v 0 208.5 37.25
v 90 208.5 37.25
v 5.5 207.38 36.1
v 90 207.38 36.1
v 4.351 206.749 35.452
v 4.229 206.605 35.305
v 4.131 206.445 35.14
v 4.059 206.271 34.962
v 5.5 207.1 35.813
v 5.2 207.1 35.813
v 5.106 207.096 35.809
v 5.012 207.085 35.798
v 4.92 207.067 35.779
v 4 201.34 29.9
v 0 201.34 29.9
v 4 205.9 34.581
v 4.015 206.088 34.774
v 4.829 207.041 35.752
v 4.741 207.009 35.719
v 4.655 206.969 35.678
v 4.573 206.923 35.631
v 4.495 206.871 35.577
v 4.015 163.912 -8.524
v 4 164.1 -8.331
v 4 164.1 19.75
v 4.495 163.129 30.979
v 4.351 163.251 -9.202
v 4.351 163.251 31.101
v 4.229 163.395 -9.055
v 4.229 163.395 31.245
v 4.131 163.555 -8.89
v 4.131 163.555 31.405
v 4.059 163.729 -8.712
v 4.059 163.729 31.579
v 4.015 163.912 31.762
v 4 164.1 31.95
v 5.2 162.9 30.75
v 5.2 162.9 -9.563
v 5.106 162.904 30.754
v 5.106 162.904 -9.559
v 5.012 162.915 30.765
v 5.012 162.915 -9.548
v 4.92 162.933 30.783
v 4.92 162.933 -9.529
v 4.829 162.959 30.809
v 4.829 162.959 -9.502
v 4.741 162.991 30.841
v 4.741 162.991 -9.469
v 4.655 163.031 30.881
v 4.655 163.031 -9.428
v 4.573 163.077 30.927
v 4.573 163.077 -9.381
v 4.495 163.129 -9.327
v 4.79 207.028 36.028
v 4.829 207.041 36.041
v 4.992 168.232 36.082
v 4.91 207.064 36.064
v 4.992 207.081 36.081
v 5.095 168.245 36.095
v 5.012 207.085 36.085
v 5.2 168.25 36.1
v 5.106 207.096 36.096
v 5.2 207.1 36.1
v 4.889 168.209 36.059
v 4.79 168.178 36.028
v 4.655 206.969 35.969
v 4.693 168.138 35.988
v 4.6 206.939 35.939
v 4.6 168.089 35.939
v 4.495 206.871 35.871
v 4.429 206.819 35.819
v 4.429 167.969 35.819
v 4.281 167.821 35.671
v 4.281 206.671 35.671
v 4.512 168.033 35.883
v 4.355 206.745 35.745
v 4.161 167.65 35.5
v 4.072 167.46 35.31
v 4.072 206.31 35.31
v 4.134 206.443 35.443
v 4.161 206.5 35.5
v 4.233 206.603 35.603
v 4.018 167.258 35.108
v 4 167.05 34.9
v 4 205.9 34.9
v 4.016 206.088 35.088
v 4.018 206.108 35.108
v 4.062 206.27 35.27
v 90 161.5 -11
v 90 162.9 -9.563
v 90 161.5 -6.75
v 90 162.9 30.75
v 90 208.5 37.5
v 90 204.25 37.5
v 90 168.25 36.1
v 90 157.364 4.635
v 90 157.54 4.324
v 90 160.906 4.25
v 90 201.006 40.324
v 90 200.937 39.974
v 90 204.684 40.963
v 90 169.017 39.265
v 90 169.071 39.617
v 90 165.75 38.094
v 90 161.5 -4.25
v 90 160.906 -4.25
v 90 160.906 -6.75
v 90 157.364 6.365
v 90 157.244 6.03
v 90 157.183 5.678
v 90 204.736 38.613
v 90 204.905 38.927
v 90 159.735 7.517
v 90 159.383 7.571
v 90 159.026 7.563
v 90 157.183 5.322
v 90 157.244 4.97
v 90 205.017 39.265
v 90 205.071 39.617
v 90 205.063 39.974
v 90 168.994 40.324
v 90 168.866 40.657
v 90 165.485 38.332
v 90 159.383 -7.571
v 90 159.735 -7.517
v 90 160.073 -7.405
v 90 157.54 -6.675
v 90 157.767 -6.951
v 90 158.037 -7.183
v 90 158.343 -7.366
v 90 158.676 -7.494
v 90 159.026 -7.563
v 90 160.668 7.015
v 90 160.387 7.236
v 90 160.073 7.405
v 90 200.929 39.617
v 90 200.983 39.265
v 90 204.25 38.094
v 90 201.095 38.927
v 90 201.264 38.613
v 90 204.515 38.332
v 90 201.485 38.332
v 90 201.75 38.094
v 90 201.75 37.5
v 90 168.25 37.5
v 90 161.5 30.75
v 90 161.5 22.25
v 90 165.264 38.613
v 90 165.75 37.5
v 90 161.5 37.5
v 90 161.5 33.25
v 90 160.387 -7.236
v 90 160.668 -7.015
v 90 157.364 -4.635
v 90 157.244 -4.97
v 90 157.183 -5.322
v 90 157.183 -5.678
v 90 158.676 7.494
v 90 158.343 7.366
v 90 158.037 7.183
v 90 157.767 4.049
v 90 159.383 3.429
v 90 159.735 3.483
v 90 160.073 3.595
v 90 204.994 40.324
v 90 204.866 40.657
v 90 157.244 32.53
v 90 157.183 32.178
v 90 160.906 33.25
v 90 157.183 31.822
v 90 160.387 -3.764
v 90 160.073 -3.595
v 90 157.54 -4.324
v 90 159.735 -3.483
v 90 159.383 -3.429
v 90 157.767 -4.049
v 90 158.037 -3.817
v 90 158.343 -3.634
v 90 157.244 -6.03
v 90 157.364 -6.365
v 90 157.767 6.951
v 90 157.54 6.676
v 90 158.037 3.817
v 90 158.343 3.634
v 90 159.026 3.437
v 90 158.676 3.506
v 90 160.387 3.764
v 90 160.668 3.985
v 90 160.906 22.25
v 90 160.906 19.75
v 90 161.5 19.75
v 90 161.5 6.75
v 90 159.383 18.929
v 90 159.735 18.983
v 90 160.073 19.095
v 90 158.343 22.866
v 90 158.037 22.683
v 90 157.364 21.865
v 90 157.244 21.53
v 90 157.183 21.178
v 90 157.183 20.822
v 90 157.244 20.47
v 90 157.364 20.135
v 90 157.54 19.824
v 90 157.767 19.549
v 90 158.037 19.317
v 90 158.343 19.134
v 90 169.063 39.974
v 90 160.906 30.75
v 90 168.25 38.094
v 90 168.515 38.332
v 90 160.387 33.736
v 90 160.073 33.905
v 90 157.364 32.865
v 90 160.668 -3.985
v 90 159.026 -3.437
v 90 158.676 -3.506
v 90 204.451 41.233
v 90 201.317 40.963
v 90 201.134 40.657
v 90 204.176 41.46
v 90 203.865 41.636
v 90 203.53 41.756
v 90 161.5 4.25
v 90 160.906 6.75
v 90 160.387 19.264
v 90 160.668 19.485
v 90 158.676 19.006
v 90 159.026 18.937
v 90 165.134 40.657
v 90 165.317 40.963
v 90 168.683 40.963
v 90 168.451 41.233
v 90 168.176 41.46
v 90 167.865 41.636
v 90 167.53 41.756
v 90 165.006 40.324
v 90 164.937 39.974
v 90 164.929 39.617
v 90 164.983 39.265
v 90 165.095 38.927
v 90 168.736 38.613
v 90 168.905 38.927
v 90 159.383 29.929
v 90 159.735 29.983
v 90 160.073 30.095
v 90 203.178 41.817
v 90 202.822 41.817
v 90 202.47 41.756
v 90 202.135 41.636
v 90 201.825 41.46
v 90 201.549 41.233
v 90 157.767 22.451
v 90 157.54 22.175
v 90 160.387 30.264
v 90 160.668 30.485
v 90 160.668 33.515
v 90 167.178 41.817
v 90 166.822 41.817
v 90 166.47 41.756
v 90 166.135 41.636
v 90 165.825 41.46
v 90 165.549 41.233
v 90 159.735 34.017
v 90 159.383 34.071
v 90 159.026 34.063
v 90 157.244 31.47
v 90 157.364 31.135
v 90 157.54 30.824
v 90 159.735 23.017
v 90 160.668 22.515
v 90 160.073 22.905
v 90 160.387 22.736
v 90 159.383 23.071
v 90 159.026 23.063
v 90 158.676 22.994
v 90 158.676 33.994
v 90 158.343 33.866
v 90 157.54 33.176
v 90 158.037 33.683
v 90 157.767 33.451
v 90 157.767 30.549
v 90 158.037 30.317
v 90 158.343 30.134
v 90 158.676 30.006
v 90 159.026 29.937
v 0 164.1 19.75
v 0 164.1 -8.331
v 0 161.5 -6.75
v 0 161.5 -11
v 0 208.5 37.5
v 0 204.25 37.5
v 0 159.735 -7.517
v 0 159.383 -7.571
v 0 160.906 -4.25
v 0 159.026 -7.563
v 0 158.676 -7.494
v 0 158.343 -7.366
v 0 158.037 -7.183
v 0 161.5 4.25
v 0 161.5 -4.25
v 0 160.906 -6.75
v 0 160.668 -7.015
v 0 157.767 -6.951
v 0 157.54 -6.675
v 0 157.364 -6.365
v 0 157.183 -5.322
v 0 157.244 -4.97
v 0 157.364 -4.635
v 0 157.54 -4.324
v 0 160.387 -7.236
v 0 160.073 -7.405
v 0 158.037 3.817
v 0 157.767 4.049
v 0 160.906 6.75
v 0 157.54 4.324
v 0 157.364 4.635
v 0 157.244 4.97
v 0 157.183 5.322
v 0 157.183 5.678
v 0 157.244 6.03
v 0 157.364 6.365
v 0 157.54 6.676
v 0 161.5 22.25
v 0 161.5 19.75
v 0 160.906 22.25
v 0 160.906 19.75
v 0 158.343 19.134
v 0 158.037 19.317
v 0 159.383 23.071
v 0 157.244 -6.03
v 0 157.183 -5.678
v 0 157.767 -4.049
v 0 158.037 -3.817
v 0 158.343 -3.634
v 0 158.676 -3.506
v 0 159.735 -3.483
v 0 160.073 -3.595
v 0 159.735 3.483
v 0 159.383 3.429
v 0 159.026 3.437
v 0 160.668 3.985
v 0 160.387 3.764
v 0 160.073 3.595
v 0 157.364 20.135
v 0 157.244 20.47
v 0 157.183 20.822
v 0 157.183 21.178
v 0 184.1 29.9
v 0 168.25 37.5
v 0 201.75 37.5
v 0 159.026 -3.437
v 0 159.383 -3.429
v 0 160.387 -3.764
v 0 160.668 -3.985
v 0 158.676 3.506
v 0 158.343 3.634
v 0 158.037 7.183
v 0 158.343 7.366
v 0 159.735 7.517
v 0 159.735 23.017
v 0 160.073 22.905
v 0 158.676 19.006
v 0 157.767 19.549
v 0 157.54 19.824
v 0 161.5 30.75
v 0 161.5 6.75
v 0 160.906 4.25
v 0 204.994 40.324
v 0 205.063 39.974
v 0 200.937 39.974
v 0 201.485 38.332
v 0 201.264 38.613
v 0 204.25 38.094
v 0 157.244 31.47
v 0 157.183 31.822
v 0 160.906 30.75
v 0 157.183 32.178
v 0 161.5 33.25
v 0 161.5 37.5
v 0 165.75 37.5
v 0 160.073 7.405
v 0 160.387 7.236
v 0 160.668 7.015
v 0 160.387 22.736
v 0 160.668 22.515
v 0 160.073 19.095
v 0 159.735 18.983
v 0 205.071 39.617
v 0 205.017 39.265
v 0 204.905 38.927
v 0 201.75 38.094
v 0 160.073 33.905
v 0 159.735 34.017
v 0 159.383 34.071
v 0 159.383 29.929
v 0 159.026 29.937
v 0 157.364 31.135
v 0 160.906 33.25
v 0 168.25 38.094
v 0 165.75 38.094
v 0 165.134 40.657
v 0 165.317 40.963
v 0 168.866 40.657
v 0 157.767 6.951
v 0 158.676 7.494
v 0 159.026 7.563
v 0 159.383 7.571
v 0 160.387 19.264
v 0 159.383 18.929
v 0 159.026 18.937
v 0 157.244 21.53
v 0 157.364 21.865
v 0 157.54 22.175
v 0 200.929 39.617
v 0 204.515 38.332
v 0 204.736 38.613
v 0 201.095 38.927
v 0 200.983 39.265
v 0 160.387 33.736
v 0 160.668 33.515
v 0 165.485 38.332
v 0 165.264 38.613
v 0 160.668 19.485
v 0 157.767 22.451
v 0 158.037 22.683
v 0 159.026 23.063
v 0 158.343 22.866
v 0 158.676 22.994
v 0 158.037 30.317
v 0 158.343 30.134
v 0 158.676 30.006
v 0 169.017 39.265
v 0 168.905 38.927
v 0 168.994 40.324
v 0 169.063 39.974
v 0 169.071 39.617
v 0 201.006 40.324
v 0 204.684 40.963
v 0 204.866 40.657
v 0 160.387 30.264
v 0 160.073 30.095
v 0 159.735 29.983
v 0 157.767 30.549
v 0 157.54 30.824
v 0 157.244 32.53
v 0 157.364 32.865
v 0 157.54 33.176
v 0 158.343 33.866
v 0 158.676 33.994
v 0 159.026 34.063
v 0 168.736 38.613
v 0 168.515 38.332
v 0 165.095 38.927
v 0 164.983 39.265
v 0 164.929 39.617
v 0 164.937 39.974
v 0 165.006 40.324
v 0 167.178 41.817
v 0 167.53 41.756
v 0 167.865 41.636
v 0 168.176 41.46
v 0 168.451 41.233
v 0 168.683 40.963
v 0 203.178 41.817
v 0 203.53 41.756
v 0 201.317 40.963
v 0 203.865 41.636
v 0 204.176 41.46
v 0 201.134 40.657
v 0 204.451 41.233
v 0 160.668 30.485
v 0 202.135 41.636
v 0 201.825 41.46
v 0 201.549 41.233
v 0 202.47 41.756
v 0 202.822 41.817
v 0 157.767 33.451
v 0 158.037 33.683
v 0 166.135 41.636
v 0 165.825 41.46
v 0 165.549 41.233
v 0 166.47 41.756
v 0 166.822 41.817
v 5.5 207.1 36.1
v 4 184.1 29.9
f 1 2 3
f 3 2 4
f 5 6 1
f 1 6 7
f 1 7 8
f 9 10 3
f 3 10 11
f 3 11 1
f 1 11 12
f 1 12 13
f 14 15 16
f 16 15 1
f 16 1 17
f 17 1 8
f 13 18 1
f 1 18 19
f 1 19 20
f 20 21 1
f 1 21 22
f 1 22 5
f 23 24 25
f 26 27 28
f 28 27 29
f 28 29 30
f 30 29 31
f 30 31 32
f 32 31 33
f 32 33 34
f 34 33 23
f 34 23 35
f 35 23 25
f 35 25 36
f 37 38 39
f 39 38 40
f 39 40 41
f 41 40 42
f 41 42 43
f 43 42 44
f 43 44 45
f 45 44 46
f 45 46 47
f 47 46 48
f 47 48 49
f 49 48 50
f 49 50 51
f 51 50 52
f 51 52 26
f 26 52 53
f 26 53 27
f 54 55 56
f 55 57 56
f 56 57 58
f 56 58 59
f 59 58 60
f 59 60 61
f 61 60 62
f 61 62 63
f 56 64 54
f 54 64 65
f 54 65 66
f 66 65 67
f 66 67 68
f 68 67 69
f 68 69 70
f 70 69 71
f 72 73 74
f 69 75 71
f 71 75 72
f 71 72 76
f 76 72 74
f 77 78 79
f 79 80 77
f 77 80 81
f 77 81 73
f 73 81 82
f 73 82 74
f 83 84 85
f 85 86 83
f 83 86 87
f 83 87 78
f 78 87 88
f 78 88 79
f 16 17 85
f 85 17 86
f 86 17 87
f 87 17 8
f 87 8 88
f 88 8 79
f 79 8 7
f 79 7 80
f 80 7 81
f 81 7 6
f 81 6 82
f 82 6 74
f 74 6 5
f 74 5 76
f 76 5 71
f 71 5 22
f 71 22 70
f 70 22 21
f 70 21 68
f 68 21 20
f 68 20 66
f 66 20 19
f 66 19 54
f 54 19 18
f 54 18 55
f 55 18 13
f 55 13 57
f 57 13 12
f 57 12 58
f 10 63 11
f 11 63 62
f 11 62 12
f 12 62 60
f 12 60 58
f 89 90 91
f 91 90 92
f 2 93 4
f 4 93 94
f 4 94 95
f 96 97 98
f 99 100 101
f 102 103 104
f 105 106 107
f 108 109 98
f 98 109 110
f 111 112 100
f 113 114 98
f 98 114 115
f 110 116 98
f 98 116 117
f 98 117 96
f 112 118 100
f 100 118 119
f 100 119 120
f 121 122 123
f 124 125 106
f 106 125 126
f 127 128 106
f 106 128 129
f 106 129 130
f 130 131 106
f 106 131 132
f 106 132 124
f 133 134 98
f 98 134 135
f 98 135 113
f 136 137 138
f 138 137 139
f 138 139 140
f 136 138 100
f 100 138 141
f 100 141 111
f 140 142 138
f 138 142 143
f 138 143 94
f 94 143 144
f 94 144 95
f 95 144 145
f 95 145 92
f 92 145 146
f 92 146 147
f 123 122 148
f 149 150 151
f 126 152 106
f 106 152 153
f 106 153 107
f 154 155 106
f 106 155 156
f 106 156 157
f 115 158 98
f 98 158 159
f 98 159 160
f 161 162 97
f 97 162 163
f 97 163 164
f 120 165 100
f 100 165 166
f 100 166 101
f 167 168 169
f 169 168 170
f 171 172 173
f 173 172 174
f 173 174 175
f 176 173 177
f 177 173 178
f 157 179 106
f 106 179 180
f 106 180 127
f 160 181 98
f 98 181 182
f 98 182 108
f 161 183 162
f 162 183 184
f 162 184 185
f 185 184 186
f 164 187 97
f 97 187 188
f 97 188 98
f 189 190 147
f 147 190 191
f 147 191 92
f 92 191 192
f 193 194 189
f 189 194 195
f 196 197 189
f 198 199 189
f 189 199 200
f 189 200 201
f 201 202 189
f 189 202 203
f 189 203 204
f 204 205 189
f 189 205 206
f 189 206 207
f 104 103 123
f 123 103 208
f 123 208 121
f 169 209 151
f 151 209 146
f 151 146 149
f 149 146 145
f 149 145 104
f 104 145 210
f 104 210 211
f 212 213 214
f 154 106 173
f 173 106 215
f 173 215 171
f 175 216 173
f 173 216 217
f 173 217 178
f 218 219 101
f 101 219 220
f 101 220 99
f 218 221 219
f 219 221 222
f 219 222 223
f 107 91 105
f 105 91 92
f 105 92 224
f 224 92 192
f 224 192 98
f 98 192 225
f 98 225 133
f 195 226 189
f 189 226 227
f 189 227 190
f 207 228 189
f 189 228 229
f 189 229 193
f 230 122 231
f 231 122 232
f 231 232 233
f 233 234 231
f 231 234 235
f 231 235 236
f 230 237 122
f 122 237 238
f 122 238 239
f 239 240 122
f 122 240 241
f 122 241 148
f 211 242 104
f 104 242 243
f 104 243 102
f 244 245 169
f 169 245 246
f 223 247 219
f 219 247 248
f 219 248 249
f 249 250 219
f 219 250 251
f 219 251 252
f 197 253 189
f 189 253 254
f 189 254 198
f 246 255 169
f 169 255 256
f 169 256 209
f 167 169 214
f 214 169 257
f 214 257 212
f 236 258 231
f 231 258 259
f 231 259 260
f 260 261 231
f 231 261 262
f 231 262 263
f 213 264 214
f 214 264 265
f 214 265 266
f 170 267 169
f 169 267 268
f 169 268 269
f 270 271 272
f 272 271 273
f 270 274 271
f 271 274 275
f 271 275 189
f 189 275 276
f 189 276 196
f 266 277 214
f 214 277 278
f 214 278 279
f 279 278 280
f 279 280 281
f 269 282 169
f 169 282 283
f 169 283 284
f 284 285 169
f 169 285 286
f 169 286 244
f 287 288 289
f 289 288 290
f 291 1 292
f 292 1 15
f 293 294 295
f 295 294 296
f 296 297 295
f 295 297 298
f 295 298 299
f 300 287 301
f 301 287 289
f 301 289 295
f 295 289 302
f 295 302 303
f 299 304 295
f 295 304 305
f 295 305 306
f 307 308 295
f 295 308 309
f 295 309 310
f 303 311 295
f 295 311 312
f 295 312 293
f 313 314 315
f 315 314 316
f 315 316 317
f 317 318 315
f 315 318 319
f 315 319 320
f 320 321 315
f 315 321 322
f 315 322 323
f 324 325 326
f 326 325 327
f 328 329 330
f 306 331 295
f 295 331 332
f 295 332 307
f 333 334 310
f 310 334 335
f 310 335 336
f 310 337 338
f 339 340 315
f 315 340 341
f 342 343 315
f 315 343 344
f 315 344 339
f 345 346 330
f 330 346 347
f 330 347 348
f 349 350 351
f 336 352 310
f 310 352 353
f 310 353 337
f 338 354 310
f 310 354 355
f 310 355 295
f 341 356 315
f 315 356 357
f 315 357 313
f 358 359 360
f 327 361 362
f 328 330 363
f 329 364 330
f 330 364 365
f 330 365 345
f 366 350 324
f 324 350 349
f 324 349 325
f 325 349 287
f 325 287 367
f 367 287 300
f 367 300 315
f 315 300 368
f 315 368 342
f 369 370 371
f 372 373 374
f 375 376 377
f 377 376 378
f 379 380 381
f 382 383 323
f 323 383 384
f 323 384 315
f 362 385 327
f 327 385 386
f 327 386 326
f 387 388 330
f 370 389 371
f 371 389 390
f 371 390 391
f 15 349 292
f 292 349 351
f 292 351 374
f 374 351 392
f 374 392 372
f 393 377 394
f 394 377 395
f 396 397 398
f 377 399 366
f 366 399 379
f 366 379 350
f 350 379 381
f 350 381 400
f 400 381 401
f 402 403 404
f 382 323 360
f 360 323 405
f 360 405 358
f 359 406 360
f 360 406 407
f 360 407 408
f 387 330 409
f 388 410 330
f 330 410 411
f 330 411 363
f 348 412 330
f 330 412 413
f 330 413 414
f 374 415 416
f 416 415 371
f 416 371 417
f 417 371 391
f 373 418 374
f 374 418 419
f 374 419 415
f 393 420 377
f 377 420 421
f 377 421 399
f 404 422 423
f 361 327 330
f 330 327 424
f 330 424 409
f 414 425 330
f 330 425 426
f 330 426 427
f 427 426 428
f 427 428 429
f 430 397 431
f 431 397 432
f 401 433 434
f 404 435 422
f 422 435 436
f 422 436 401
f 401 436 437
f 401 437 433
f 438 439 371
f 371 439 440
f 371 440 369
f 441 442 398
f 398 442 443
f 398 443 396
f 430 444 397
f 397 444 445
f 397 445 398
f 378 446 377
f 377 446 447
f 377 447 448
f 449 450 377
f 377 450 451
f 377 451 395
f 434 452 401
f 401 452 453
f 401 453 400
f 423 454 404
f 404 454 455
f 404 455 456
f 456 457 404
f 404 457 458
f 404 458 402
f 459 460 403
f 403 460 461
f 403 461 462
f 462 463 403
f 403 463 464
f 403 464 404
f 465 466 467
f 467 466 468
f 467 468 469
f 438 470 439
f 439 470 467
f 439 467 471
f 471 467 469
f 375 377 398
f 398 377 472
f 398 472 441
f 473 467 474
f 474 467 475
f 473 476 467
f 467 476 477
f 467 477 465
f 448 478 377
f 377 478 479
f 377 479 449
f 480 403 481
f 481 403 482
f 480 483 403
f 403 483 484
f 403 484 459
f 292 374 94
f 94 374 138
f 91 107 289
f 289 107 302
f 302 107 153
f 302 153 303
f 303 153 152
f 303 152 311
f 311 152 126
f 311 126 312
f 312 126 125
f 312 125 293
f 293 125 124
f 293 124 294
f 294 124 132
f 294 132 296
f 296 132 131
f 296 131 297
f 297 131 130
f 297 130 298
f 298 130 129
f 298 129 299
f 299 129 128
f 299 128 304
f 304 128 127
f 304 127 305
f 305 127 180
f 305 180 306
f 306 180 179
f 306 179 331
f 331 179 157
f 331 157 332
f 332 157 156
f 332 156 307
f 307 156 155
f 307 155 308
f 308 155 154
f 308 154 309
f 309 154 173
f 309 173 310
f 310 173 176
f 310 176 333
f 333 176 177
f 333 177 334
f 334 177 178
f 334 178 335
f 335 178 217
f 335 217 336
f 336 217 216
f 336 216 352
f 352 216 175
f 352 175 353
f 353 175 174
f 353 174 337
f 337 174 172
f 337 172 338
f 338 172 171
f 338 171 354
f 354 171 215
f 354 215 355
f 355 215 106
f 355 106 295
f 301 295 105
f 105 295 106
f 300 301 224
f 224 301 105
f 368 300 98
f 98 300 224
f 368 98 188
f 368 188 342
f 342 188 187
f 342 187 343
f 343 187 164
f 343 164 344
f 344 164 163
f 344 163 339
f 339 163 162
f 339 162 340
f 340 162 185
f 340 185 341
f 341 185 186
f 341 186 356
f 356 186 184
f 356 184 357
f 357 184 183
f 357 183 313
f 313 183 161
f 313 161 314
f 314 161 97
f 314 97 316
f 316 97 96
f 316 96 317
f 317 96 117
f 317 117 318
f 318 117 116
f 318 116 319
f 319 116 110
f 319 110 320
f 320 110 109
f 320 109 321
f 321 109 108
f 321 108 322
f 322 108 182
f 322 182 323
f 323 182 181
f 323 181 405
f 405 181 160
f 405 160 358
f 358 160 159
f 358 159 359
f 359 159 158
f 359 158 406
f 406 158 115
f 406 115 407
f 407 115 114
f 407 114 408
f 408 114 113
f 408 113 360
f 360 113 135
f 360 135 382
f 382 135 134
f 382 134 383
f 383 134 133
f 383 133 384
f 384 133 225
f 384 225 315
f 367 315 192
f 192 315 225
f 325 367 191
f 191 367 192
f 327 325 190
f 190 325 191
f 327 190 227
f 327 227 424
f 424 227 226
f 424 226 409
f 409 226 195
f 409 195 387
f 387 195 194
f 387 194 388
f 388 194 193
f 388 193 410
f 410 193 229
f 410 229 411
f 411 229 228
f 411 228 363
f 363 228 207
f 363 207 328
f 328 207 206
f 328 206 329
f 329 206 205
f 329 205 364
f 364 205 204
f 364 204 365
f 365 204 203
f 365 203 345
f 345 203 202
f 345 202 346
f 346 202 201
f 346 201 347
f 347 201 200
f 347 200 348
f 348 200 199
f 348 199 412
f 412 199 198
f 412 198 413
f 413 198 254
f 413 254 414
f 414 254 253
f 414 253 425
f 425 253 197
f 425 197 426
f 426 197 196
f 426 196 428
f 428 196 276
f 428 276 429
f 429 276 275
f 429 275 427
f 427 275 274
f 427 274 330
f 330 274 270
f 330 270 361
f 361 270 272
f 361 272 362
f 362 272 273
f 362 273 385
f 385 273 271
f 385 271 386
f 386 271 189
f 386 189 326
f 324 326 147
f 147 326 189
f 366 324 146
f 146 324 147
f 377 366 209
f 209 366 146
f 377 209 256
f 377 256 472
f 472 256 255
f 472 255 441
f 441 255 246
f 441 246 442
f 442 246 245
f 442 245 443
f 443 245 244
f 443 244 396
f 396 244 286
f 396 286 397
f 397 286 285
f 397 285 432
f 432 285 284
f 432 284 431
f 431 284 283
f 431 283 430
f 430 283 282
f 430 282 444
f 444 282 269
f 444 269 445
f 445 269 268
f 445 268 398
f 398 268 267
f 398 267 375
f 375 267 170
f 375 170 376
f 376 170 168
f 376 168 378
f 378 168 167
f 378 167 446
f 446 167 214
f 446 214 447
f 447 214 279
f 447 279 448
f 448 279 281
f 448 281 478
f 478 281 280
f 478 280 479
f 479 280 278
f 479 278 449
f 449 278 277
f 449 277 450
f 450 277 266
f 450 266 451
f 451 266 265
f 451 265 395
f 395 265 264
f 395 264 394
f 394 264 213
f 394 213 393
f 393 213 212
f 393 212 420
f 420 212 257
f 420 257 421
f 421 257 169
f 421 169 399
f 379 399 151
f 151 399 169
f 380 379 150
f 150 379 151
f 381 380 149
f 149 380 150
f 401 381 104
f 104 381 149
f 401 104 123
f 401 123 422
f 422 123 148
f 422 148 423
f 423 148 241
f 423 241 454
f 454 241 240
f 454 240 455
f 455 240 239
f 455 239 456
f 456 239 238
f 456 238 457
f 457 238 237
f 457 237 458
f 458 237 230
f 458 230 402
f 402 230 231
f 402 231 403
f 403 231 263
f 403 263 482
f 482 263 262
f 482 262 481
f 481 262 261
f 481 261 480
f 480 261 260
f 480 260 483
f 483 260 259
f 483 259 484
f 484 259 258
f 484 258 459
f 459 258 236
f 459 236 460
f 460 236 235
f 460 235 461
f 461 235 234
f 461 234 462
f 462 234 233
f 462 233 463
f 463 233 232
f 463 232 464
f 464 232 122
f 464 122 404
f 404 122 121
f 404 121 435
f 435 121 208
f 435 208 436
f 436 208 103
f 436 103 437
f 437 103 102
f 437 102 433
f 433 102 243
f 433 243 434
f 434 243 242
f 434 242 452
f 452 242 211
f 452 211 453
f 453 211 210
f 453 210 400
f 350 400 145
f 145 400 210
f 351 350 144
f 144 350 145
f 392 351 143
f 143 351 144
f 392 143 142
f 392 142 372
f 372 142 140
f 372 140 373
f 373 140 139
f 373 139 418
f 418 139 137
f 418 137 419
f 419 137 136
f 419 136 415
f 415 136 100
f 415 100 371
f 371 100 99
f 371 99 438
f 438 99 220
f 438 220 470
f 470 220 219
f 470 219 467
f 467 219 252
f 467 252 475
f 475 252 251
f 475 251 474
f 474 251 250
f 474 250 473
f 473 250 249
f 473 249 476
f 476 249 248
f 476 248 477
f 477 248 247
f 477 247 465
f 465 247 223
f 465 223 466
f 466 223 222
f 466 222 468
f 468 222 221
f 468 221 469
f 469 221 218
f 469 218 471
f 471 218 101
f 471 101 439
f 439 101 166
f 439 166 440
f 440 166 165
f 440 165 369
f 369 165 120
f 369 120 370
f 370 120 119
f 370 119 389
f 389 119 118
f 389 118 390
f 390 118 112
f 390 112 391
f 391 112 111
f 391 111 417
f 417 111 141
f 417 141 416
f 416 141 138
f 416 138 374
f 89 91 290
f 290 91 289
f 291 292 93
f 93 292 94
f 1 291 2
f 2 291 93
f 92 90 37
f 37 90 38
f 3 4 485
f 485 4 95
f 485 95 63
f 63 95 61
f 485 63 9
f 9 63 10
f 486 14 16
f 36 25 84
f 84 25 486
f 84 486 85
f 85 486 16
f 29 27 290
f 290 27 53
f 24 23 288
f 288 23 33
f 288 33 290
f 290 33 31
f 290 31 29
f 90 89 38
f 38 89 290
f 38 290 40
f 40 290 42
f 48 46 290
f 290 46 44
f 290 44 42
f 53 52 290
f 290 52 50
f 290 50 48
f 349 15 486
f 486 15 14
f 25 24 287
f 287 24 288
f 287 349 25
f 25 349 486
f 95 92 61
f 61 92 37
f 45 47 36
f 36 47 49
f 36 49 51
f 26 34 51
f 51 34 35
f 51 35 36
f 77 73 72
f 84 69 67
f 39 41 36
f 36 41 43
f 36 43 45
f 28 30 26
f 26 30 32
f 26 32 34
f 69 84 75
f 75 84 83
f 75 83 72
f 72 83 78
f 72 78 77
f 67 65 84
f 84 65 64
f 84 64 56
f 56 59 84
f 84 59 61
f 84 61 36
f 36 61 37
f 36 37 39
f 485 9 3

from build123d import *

# Parameters (mm, degrees)
EXTRUDE_1_DEPTH             = 90
SKETCH_2_W                  = 90
SKETCH_2_H                  = 42.75
EXTRUDE_2_DEPTH             = 8.2
SKETCH_3_W                  = 90
SKETCH_3_H                  = 52.45
EXTRUDE_3_DEPTH             = 8.2
SKETCH_4_W                  = 3.95
SKETCH_4_H                  = 2.25
CUT_EXTRUDE_1_DEPTH         = 235.487383722
SKETCH_5_W                  = 3.95
SKETCH_5_H                  = 29.5
CUT_EXTRUDE_2_DEPTH         = 235.487383722
SKETCH_6_W                  = 3.95
SKETCH_6_H                  = 6.2
CUT_EXTRUDE_3_DEPTH         = 235.487383722
SKETCH_7_W                  = 2.25
SKETCH_7_H                  = 3.95
CUT_EXTRUDE_4_DEPTH         = 235.487383722
SKETCH_8_W                  = 4.5
SKETCH_8_H                  = 3.95
CUT_EXTRUDE_5_DEPTH         = 235.487383722
SKETCH_9_W                  = 9
SKETCH_9_H                  = 3.95
CUT_EXTRUDE_6_DEPTH         = 235.487383722
SKETCH_10_W                 = 4.5
SKETCH_10_H                 = 3.95
CUT_EXTRUDE_7_DEPTH         = 235.487383722
SKETCH_11_W                 = 2.25
SKETCH_11_H                 = 3.95
CUT_EXTRUDE_8_DEPTH         = 235.487383722
SKETCH_12_W                 = 45.7
SKETCH_12_H                 = 44.2
CUT_EXTRUDE_9_DEPTH         = 86
HOLE_WIZARD_2_5_2_5_1_D     = 2.5
HOLE_WIZARD_4_5_4_5_1_D     = 4.5
HOLE_WIZARD_8_3_8_3_1_D     = 8.3
HOLE_WIZARD_8_3_8_3_1_DEPTH = 3.2
SKETCH_19_R                 = 1.67252853
SKETCH_19_R_2               = 1.459159852
SKETCH_19_R_3               = 1.459908976
SKETCH_19_R_4               = 1.592821911
SKETCH_19_R_5               = 1.532216665
SKETCH_19_R_6               = 1.596138091
EXTRUDE_4_DEPTH             = 90
CUT_EXTRUDE_START           = -90
SKETCH_20_R                 = 4.15
CUT_EXTRUDE_10_DEPTH        = 90
FILLET_1_R                  = 2
FILLET_2_R                  = 2
FILLET_3_R                  = 2
FILLET_4_R                  = 2
FILLET_5_R                  = 2
FILLET_6_R                  = 2
FILLET_7_R                  = 2
FILLET_8_R                  = 2
FILLET_9_R                  = 2
FILLET_10_R                 = 2
FILLET_11_R                 = 2
FILLET_12_R                 = 2
FILLET_13_R                 = 1.2
CUT_EXTRUDE_11_DEPTH        = 131
EXTRUDE_START               = -4
EXTRUDE_5_DEPTH             = 4
CUT_EXTRUDE_12_DEPTH        = 4
CUT_EXTRUDE_14_DEPTH        = 6
EXTRUDE_6_DEPTH             = 4
EXTRUDE_7_DEPTH             = 87
CUT_EXTRUDE_15_DEPTH        = 84.5


with BuildPart() as part:
    # Эскиз1 → Бобышка-Вытянуть1 (new body)
    with BuildSketch(Plane(origin=(90, 0, 0), x_dir=(0, 0, -1), z_dir=(1, 0, 0))):
        with BuildLine():
            Line((6.75, 160.906238208), (6.75, 204.25))
            Line((6.75, 204.25), (-38.093761792, 204.25))
            ThreePointArc((-38.093761792, 204.25), (-41.825, 203), (-38.093761792, 201.75))
            Line((-38.093761792, 201.75), (-37.5, 201.75))
            Line((-37.5, 201.75), (-37.5, 168.25))
            Line((-37.5, 168.25), (-38.093761792, 168.25))
            ThreePointArc((-38.093761792, 168.25), (-41.825, 167), (-38.093761792, 165.75))
            Line((-38.093761792, 165.75), (-37.5, 165.75))
            Line((-37.5, 165.75), (-37.5, 161.5))
            Line((-37.5, 161.5), (-33.25, 161.5))
            Line((-33.25, 161.5), (-33.25, 160.906238208))
            ThreePointArc((-33.25, 160.906238208), (-32, 157.175), (-30.75, 160.906238208))
            Line((-30.75, 160.906238208), (-30.75, 161.5))
            Line((-30.75, 161.5), (-22.25, 161.5))
            Line((-22.25, 161.5), (-22.25, 160.906238208))
            ThreePointArc((-22.25, 160.906238208), (-21, 157.175), (-19.75, 160.906238208))
            Line((-19.75, 160.906238208), (-19.75, 161.5))
            Line((-19.75, 161.5), (-6.75, 161.5))
            Line((-6.75, 161.5), (-6.75, 160.906238208))
            ThreePointArc((-6.75, 160.906238208), (-5.5, 157.175), (-4.25, 160.906238208))
            Line((-4.25, 160.906238208), (-4.25, 161.5))
            Line((-4.25, 161.5), (4.25, 161.5))
            Line((4.25, 161.5), (4.25, 160.906238208))
            ThreePointArc((4.25, 160.906238208), (5.5, 157.175), (6.75, 160.906238208))
        make_face()
    extrude(amount=-EXTRUDE_1_DEPTH)

    # Эскиз2 → Бобышка-Вытянуть2 (add)
    with BuildSketch(Plane(origin=(0, 0, -6.75), x_dir=(-1, 0, 0), z_dir=(0, 0, -1))):
        with Locations((-45, 182.875)):
            Rectangle(SKETCH_2_W, SKETCH_2_H)
    extrude(amount=EXTRUDE_2_DEPTH)

    # Эскиз3 → Бобышка-Вытянуть3 (add)
    with BuildSketch(Plane(origin=(0, 204.25, 0), x_dir=(-1, 0, 0), z_dir=(0, 1, 0))):
        with Locations((-45, 11.275)):
            Rectangle(SKETCH_3_W, SKETCH_3_H)
    extrude(amount=EXTRUDE_3_DEPTH)

    # Эскиз4 → Вырез-Вытянуть1 (cut, through all)
    with BuildSketch(Plane.ZY):
        with Locations((-12.975, 162.625)):
            Rectangle(SKETCH_4_W, SKETCH_4_H)
    extrude(amount=-CUT_EXTRUDE_1_DEPTH, mode=Mode.SUBTRACT)

    # Эскиз5 → Вырез-Вытянуть2 (cut, through all)
    with BuildSketch(Plane.ZY):
        with Locations((-12.975, 185)):
            Rectangle(SKETCH_5_W, SKETCH_5_H)
    extrude(amount=-CUT_EXTRUDE_2_DEPTH, mode=Mode.SUBTRACT)

    # Эскиз6 → Вырез-Вытянуть3 (cut, through all)
    with BuildSketch(Plane.ZY):
        with Locations((-12.975, 209.35)):
            Rectangle(SKETCH_6_W, SKETCH_6_H)
    extrude(amount=-CUT_EXTRUDE_3_DEPTH, mode=Mode.SUBTRACT)

    # Эскиз7 → Вырез-Вытянуть4 (cut, through all)
    with BuildSketch(Plane.ZY):
        with Locations((-9.875, 210.475)):
            Rectangle(SKETCH_7_W, SKETCH_7_H)
    extrude(amount=-CUT_EXTRUDE_4_DEPTH, mode=Mode.SUBTRACT)

    # Эскиз8 → Вырез-Вытянуть5 (cut, through all)
    with BuildSketch(Plane.ZY):
        with Locations((0, 210.475)):
            Rectangle(SKETCH_8_W, SKETCH_8_H)
    extrude(amount=-CUT_EXTRUDE_5_DEPTH, mode=Mode.SUBTRACT)

    # Эскиз9 → Вырез-Вытянуть6 (cut, through all)
    with BuildSketch(Plane.ZY):
        with Locations((13.25, 210.475)):
            Rectangle(SKETCH_9_W, SKETCH_9_H)
    extrude(amount=-CUT_EXTRUDE_6_DEPTH, mode=Mode.SUBTRACT)

    # Эскиз10 → Вырез-Вытянуть7 (cut, through all)
    with BuildSketch(Plane.ZY):
        with Locations((26.5, 210.475)):
            Rectangle(SKETCH_10_W, SKETCH_10_H)
    extrude(amount=-CUT_EXTRUDE_7_DEPTH, mode=Mode.SUBTRACT)

    # Эскиз11 → Вырез-Вытянуть8 (cut, through all)
    with BuildSketch(Plane.ZY):
        with Locations((36.375, 210.475)):
            Rectangle(SKETCH_11_W, SKETCH_11_H)
    extrude(amount=-CUT_EXTRUDE_8_DEPTH, mode=Mode.SUBTRACT)

    # Эскиз12 → Вырез-Вытянуть9 (cut)
    with BuildSketch(Plane(origin=(90, 0, 0), x_dir=(0, 0, -1), z_dir=(1, 0, 0))):
        with Locations((-13.25, 185)):
            Rectangle(SKETCH_12_W, SKETCH_12_H)
    extrude(amount=-CUT_EXTRUDE_9_DEPTH, mode=Mode.SUBTRACT)

    # Диаметр отверстия Ø2.5 (2.5)1 (through all)
    with Locations(Plane(origin=(90, 0, 0), x_dir=(0, 0, -1), z_dir=(1, 0, 0))):
        with Locations((5.5, 159.25), (-21, 159.25), (-5.5, 159.25), (-32, 159.25), (-39.75, 167), (-39.75, 203)):
            Hole(HOLE_WIZARD_2_5_2_5_1_D / 2)

    # Диаметр отверстия Ø4.5 (4.5)1 (through all)
    with Locations(Plane.ZY):
        with Locations((-13.25, 167), (-13.25, 203), (-5.5, 210.75), (5.5, 210.75), (21, 210.75), (32, 210.75)):
            Hole(HOLE_WIZARD_4_5_4_5_1_D / 2)

    # Диаметр отверстия Ø8.3 (8.3)1
    with Locations(Plane.ZY):
        with Locations((13.25, 185)):
            Hole(HOLE_WIZARD_8_3_8_3_1_D / 2, depth=HOLE_WIZARD_8_3_8_3_1_DEPTH)

    # Эскиз19 → Бобышка-Вытянуть4 (add)
    with BuildSketch(Plane(origin=(90, 0, 0), x_dir=(0, 0, -1), z_dir=(1, 0, 0))):
        with Locations((-39.75, 203)):
            Circle(SKETCH_19_R)
        with Locations((-39.75, 167)):
            Circle(SKETCH_19_R_2)
        with Locations((-32, 159.25)):
            Circle(SKETCH_19_R_3)
        with Locations((-21, 159.25)):
            Circle(SKETCH_19_R_4)
        with Locations((-5.5, 159.25)):
            Circle(SKETCH_19_R_5)
        with Locations((5.5, 159.25)):
            Circle(SKETCH_19_R_6)
    extrude(amount=-EXTRUDE_4_DEPTH)

    # Эскиз20 → Вырез-Вытянуть10 (cut)
    with BuildSketch(Plane.ZY.offset(CUT_EXTRUDE_START)):
        with Locations((13.25, 185)):
            Circle(SKETCH_20_R)
    extrude(amount=CUT_EXTRUDE_10_DEPTH, mode=Mode.SUBTRACT)

    # Скругление1
    fillet_1_edges = [part.edges().sort_by_distance(p)[0] for p in [
        (45, 208.5, -8.75),
    ]]
    fillet(fillet_1_edges, radius=FILLET_1_R)

    # Скругление2
    fillet_2_edges = [part.edges().sort_by_distance(p)[0] for p in [
        (45, 163.75, -11),
    ]]
    fillet(fillet_2_edges, radius=FILLET_2_R)

    # Скругление3
    fillet_3_edges = [part.edges().sort_by_distance(p)[0] for p in [
        (45, 170.25, -11),
    ]]
    fillet(fillet_3_edges, radius=FILLET_3_R)

    # Скругление4
    fillet_4_edges = [part.edges().sort_by_distance(p)[0] for p in [
        (45, 199.75, -11),
    ]]
    fillet(fillet_4_edges, radius=FILLET_4_R)

    # Скругление5
    fillet_5_edges = [part.edges().sort_by_distance(p)[0] for p in [
        (45, 206.25, -11),
    ]]
    fillet(fillet_5_edges, radius=FILLET_5_R)

    # Скругление6
    fillet_6_edges = [part.edges().sort_by_distance(p)[0] for p in [
        (45, 208.5, -2.25),
    ]]
    fillet(fillet_6_edges, radius=FILLET_6_R)

    # Скругление7
    fillet_7_edges = [part.edges().sort_by_distance(p)[0] for p in [
        (45, 208.5, 2.25),
    ]]
    fillet(fillet_7_edges, radius=FILLET_7_R)

    # Скругление8
    fillet_8_edges = [part.edges().sort_by_distance(p)[0] for p in [
        (45, 208.5, 8.75),
    ]]
    fillet(fillet_8_edges, radius=FILLET_8_R)

    # Скругление9
    fillet_9_edges = [part.edges().sort_by_distance(p)[0] for p in [
        (45, 208.5, 17.75),
    ]]
    fillet(fillet_9_edges, radius=FILLET_9_R)

    # Скругление10
    fillet_10_edges = [part.edges().sort_by_distance(p)[0] for p in [
        (45, 208.5, 24.25),
    ]]
    fillet(fillet_10_edges, radius=FILLET_10_R)

    # Скругление11
    fillet_11_edges = [part.edges().sort_by_distance(p)[0] for p in [
        (45, 208.5, 28.75),
    ]]
    fillet(fillet_11_edges, radius=FILLET_11_R)

    # Скругление12
    fillet_12_edges = [part.edges().sort_by_distance(p)[0] for p in [
        (45, 208.5, 35.25),
    ]]
    fillet(fillet_12_edges, radius=FILLET_12_R)

    # Скругление13
    fillet_13_edges = [part.edges().sort_by_distance(p)[0] for p in [
        (4, 185, -9.6),
        (4, 162.9, 13.25),
        (4, 185, 36.1),
        (4, 207.1, 13.25),
    ]]
    fillet(fillet_13_edges, radius=FILLET_13_R)

    # Эскиз21 → Вырез-Вытянуть11 (cut)
    with BuildSketch(Plane(origin=(90, 0, 0), x_dir=(0, 0, -1), z_dir=(1, 0, 0))):
        Polygon((-37.25, 208.5), (11, 161.5), (17.903435656, 161.5), (17.903435656, 214.883320623), (-37.25, 214.883320623), align=None)
    extrude(amount=-CUT_EXTRUDE_11_DEPTH, mode=Mode.SUBTRACT)

    # Эскиз22 → Бобышка-Вытянуть5 (add)
    with BuildSketch(Plane.ZY.offset(EXTRUDE_START)):
        with BuildLine():
            Line((16.161231082, 187.957572246), (10.217049193, 182.167384706))
            ThreePointArc((10.217049193, 182.167384706), (16.145733389, 182.027252425), (16.161231082, 187.957572246))
        make_face()
    extrude(amount=EXTRUDE_5_DEPTH)

    # Эскиз23 → Вырез-Вытянуть12 (cut)
    with BuildSketch(Plane(origin=(4, 0, 0), x_dir=(0, 0, -1), z_dir=(1, 0, 0))):
        Polygon((-29.9, 205.9), (8.330851064, 169.1), (-29.9, 169.1), align=None)
    extrude(amount=-CUT_EXTRUDE_12_DEPTH, mode=Mode.SUBTRACT)

    # Эскиз25 → Вырез-Вытянуть14 (cut)
    with BuildSketch(Plane(origin=(4, 0, 0), x_dir=(0, 0, -1), z_dir=(1, 0, 0))):
        Polygon((-29.9, 164.1), (8.330851064, 164.1), (3.19787234, 169.1), (-29.9, 169.1), align=None)
    extrude(amount=-CUT_EXTRUDE_14_DEPTH, mode=Mode.SUBTRACT)

    # Эскиз26 → Бобышка-Вытянуть6 (add)
    with BuildSketch(Plane(origin=(4, 0, 0), x_dir=(0, 0, -1), z_dir=(1, 0, 0))):
        Polygon((-29.9, 184.1), (-19.75, 164.1), (-29.9, 164.1), align=None)
    extrude(amount=-EXTRUDE_6_DEPTH)

    # Эскиз27 → Бобышка-Вытянуть7 (add)
    with BuildSketch(Plane(origin=(90, 0, 0), x_dir=(0, 0, -1), z_dir=(1, 0, 0))):
        Polygon((-30.75, 162.9), (-36.1, 162.9), (-36.1, 168.25), align=None)
    extrude(amount=-EXTRUDE_7_DEPTH)

    # Эскиз28 → Вырез-Вытянуть15 (cut)
    with BuildSketch(Plane(origin=(90, 0, 0), x_dir=(0, 0, -1), z_dir=(1, 0, 0))):
        Polygon((-36.1, 207.1), (-35.812765957, 207.1), (-36.1, 207.379792746), align=None)
    extrude(amount=-CUT_EXTRUDE_15_DEPTH, mode=Mode.SUBTRACT)


solid = part.part
